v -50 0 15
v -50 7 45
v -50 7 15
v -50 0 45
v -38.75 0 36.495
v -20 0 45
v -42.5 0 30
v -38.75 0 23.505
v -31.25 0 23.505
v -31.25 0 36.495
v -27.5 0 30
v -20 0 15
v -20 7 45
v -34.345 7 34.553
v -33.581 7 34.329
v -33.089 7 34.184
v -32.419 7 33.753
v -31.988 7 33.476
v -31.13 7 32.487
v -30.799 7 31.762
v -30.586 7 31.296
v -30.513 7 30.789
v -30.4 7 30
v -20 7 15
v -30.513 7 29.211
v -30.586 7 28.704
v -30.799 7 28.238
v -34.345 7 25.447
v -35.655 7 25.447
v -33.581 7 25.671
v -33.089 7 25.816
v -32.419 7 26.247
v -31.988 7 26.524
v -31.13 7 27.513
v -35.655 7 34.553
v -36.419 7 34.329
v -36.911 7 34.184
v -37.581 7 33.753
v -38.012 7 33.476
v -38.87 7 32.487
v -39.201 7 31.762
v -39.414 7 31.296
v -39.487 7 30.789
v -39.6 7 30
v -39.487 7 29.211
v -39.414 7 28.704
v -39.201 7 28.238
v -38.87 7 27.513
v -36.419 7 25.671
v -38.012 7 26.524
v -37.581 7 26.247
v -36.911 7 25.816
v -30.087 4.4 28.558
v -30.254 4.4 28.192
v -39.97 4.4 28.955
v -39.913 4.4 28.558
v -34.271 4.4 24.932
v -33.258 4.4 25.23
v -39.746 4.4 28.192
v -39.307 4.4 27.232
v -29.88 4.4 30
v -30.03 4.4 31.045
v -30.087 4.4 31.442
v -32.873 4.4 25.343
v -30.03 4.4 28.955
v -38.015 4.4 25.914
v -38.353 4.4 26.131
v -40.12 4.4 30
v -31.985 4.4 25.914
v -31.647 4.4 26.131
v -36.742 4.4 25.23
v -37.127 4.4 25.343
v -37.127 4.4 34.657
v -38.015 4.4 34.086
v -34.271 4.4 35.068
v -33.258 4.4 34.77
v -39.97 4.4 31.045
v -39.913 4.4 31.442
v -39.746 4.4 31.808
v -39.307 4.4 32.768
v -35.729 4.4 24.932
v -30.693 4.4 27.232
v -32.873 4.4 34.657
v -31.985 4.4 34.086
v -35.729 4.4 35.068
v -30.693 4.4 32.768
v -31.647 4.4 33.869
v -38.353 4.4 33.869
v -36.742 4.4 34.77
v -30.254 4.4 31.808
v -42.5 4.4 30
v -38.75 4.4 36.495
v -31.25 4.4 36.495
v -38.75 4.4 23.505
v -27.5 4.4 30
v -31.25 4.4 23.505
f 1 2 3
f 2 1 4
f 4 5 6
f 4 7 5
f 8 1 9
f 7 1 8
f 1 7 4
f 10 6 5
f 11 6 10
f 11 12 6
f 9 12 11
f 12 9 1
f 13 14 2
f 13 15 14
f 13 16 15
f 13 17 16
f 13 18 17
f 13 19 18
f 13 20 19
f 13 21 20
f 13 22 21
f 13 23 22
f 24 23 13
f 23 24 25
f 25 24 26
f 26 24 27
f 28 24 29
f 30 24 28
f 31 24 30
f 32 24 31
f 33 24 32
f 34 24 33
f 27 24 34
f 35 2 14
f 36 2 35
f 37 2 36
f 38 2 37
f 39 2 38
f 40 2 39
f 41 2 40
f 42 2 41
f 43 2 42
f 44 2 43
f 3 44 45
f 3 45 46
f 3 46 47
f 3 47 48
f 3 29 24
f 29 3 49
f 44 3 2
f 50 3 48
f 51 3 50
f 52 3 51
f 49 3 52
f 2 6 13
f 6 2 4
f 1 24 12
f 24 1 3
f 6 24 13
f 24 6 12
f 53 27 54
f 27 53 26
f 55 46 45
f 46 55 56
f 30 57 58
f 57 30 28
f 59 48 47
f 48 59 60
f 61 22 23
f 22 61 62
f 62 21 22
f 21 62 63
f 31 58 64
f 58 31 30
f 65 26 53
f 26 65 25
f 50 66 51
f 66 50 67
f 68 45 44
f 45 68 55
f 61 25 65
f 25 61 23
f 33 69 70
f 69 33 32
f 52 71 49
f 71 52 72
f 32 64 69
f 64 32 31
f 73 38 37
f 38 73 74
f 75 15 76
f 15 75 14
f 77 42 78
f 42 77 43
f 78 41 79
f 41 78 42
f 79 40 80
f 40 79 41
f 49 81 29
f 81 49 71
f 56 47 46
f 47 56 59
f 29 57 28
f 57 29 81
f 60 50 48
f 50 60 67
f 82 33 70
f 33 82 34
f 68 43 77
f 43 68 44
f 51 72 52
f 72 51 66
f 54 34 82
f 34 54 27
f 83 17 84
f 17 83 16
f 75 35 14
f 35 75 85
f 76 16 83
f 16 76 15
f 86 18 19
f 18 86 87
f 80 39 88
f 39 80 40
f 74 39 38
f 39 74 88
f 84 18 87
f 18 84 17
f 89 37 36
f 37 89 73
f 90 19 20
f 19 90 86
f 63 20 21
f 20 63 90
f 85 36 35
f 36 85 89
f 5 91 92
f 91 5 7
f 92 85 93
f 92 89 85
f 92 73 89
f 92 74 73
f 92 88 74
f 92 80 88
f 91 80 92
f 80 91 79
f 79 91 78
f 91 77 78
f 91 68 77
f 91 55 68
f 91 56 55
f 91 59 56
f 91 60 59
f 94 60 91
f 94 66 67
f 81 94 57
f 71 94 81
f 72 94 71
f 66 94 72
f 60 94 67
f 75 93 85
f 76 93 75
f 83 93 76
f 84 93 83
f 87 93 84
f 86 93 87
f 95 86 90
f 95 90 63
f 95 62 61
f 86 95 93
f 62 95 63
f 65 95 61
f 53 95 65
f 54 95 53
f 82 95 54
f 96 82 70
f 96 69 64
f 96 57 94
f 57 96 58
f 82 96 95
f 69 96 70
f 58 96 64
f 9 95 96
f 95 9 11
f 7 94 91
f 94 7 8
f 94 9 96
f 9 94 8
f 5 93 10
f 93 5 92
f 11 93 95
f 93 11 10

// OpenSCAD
  use <MCAD/regular_shapes.scad>;     
 
module prism(l, w, h)
{
    polyhedron(points=[[0,0,0], [0,w,h], [l,w,h], [l,0,0], [0,w,0], [l,w,0]],
               // top sloping face (A)
               faces=[[0,1,2,3],
               // vertical rectangular face (B)
               [2,1,4,5],
               // bottom face (C)
               [0,3,5,4],
               // rear triangular face (D)
               [0,4,1],
               // front triangular face (E)
               [3,2,5]]
               );
}
 
difference()
{
    difference() 
    {
        translate([-50,7, 15])rotate ([90,0]) cube([30,30,7]);
        translate ([-35,15, 30])rotate ([90,0]) cylinder(20, 3,7);
    }
 
   translate ([-35,4.4, 30])rotate ([90,0]) linear_extrude(height = 8) {
    hexagon(7.5);
}
}
//translate ([-30,5,15]) rotate ([270,270,0]) prism (30,12,10);
